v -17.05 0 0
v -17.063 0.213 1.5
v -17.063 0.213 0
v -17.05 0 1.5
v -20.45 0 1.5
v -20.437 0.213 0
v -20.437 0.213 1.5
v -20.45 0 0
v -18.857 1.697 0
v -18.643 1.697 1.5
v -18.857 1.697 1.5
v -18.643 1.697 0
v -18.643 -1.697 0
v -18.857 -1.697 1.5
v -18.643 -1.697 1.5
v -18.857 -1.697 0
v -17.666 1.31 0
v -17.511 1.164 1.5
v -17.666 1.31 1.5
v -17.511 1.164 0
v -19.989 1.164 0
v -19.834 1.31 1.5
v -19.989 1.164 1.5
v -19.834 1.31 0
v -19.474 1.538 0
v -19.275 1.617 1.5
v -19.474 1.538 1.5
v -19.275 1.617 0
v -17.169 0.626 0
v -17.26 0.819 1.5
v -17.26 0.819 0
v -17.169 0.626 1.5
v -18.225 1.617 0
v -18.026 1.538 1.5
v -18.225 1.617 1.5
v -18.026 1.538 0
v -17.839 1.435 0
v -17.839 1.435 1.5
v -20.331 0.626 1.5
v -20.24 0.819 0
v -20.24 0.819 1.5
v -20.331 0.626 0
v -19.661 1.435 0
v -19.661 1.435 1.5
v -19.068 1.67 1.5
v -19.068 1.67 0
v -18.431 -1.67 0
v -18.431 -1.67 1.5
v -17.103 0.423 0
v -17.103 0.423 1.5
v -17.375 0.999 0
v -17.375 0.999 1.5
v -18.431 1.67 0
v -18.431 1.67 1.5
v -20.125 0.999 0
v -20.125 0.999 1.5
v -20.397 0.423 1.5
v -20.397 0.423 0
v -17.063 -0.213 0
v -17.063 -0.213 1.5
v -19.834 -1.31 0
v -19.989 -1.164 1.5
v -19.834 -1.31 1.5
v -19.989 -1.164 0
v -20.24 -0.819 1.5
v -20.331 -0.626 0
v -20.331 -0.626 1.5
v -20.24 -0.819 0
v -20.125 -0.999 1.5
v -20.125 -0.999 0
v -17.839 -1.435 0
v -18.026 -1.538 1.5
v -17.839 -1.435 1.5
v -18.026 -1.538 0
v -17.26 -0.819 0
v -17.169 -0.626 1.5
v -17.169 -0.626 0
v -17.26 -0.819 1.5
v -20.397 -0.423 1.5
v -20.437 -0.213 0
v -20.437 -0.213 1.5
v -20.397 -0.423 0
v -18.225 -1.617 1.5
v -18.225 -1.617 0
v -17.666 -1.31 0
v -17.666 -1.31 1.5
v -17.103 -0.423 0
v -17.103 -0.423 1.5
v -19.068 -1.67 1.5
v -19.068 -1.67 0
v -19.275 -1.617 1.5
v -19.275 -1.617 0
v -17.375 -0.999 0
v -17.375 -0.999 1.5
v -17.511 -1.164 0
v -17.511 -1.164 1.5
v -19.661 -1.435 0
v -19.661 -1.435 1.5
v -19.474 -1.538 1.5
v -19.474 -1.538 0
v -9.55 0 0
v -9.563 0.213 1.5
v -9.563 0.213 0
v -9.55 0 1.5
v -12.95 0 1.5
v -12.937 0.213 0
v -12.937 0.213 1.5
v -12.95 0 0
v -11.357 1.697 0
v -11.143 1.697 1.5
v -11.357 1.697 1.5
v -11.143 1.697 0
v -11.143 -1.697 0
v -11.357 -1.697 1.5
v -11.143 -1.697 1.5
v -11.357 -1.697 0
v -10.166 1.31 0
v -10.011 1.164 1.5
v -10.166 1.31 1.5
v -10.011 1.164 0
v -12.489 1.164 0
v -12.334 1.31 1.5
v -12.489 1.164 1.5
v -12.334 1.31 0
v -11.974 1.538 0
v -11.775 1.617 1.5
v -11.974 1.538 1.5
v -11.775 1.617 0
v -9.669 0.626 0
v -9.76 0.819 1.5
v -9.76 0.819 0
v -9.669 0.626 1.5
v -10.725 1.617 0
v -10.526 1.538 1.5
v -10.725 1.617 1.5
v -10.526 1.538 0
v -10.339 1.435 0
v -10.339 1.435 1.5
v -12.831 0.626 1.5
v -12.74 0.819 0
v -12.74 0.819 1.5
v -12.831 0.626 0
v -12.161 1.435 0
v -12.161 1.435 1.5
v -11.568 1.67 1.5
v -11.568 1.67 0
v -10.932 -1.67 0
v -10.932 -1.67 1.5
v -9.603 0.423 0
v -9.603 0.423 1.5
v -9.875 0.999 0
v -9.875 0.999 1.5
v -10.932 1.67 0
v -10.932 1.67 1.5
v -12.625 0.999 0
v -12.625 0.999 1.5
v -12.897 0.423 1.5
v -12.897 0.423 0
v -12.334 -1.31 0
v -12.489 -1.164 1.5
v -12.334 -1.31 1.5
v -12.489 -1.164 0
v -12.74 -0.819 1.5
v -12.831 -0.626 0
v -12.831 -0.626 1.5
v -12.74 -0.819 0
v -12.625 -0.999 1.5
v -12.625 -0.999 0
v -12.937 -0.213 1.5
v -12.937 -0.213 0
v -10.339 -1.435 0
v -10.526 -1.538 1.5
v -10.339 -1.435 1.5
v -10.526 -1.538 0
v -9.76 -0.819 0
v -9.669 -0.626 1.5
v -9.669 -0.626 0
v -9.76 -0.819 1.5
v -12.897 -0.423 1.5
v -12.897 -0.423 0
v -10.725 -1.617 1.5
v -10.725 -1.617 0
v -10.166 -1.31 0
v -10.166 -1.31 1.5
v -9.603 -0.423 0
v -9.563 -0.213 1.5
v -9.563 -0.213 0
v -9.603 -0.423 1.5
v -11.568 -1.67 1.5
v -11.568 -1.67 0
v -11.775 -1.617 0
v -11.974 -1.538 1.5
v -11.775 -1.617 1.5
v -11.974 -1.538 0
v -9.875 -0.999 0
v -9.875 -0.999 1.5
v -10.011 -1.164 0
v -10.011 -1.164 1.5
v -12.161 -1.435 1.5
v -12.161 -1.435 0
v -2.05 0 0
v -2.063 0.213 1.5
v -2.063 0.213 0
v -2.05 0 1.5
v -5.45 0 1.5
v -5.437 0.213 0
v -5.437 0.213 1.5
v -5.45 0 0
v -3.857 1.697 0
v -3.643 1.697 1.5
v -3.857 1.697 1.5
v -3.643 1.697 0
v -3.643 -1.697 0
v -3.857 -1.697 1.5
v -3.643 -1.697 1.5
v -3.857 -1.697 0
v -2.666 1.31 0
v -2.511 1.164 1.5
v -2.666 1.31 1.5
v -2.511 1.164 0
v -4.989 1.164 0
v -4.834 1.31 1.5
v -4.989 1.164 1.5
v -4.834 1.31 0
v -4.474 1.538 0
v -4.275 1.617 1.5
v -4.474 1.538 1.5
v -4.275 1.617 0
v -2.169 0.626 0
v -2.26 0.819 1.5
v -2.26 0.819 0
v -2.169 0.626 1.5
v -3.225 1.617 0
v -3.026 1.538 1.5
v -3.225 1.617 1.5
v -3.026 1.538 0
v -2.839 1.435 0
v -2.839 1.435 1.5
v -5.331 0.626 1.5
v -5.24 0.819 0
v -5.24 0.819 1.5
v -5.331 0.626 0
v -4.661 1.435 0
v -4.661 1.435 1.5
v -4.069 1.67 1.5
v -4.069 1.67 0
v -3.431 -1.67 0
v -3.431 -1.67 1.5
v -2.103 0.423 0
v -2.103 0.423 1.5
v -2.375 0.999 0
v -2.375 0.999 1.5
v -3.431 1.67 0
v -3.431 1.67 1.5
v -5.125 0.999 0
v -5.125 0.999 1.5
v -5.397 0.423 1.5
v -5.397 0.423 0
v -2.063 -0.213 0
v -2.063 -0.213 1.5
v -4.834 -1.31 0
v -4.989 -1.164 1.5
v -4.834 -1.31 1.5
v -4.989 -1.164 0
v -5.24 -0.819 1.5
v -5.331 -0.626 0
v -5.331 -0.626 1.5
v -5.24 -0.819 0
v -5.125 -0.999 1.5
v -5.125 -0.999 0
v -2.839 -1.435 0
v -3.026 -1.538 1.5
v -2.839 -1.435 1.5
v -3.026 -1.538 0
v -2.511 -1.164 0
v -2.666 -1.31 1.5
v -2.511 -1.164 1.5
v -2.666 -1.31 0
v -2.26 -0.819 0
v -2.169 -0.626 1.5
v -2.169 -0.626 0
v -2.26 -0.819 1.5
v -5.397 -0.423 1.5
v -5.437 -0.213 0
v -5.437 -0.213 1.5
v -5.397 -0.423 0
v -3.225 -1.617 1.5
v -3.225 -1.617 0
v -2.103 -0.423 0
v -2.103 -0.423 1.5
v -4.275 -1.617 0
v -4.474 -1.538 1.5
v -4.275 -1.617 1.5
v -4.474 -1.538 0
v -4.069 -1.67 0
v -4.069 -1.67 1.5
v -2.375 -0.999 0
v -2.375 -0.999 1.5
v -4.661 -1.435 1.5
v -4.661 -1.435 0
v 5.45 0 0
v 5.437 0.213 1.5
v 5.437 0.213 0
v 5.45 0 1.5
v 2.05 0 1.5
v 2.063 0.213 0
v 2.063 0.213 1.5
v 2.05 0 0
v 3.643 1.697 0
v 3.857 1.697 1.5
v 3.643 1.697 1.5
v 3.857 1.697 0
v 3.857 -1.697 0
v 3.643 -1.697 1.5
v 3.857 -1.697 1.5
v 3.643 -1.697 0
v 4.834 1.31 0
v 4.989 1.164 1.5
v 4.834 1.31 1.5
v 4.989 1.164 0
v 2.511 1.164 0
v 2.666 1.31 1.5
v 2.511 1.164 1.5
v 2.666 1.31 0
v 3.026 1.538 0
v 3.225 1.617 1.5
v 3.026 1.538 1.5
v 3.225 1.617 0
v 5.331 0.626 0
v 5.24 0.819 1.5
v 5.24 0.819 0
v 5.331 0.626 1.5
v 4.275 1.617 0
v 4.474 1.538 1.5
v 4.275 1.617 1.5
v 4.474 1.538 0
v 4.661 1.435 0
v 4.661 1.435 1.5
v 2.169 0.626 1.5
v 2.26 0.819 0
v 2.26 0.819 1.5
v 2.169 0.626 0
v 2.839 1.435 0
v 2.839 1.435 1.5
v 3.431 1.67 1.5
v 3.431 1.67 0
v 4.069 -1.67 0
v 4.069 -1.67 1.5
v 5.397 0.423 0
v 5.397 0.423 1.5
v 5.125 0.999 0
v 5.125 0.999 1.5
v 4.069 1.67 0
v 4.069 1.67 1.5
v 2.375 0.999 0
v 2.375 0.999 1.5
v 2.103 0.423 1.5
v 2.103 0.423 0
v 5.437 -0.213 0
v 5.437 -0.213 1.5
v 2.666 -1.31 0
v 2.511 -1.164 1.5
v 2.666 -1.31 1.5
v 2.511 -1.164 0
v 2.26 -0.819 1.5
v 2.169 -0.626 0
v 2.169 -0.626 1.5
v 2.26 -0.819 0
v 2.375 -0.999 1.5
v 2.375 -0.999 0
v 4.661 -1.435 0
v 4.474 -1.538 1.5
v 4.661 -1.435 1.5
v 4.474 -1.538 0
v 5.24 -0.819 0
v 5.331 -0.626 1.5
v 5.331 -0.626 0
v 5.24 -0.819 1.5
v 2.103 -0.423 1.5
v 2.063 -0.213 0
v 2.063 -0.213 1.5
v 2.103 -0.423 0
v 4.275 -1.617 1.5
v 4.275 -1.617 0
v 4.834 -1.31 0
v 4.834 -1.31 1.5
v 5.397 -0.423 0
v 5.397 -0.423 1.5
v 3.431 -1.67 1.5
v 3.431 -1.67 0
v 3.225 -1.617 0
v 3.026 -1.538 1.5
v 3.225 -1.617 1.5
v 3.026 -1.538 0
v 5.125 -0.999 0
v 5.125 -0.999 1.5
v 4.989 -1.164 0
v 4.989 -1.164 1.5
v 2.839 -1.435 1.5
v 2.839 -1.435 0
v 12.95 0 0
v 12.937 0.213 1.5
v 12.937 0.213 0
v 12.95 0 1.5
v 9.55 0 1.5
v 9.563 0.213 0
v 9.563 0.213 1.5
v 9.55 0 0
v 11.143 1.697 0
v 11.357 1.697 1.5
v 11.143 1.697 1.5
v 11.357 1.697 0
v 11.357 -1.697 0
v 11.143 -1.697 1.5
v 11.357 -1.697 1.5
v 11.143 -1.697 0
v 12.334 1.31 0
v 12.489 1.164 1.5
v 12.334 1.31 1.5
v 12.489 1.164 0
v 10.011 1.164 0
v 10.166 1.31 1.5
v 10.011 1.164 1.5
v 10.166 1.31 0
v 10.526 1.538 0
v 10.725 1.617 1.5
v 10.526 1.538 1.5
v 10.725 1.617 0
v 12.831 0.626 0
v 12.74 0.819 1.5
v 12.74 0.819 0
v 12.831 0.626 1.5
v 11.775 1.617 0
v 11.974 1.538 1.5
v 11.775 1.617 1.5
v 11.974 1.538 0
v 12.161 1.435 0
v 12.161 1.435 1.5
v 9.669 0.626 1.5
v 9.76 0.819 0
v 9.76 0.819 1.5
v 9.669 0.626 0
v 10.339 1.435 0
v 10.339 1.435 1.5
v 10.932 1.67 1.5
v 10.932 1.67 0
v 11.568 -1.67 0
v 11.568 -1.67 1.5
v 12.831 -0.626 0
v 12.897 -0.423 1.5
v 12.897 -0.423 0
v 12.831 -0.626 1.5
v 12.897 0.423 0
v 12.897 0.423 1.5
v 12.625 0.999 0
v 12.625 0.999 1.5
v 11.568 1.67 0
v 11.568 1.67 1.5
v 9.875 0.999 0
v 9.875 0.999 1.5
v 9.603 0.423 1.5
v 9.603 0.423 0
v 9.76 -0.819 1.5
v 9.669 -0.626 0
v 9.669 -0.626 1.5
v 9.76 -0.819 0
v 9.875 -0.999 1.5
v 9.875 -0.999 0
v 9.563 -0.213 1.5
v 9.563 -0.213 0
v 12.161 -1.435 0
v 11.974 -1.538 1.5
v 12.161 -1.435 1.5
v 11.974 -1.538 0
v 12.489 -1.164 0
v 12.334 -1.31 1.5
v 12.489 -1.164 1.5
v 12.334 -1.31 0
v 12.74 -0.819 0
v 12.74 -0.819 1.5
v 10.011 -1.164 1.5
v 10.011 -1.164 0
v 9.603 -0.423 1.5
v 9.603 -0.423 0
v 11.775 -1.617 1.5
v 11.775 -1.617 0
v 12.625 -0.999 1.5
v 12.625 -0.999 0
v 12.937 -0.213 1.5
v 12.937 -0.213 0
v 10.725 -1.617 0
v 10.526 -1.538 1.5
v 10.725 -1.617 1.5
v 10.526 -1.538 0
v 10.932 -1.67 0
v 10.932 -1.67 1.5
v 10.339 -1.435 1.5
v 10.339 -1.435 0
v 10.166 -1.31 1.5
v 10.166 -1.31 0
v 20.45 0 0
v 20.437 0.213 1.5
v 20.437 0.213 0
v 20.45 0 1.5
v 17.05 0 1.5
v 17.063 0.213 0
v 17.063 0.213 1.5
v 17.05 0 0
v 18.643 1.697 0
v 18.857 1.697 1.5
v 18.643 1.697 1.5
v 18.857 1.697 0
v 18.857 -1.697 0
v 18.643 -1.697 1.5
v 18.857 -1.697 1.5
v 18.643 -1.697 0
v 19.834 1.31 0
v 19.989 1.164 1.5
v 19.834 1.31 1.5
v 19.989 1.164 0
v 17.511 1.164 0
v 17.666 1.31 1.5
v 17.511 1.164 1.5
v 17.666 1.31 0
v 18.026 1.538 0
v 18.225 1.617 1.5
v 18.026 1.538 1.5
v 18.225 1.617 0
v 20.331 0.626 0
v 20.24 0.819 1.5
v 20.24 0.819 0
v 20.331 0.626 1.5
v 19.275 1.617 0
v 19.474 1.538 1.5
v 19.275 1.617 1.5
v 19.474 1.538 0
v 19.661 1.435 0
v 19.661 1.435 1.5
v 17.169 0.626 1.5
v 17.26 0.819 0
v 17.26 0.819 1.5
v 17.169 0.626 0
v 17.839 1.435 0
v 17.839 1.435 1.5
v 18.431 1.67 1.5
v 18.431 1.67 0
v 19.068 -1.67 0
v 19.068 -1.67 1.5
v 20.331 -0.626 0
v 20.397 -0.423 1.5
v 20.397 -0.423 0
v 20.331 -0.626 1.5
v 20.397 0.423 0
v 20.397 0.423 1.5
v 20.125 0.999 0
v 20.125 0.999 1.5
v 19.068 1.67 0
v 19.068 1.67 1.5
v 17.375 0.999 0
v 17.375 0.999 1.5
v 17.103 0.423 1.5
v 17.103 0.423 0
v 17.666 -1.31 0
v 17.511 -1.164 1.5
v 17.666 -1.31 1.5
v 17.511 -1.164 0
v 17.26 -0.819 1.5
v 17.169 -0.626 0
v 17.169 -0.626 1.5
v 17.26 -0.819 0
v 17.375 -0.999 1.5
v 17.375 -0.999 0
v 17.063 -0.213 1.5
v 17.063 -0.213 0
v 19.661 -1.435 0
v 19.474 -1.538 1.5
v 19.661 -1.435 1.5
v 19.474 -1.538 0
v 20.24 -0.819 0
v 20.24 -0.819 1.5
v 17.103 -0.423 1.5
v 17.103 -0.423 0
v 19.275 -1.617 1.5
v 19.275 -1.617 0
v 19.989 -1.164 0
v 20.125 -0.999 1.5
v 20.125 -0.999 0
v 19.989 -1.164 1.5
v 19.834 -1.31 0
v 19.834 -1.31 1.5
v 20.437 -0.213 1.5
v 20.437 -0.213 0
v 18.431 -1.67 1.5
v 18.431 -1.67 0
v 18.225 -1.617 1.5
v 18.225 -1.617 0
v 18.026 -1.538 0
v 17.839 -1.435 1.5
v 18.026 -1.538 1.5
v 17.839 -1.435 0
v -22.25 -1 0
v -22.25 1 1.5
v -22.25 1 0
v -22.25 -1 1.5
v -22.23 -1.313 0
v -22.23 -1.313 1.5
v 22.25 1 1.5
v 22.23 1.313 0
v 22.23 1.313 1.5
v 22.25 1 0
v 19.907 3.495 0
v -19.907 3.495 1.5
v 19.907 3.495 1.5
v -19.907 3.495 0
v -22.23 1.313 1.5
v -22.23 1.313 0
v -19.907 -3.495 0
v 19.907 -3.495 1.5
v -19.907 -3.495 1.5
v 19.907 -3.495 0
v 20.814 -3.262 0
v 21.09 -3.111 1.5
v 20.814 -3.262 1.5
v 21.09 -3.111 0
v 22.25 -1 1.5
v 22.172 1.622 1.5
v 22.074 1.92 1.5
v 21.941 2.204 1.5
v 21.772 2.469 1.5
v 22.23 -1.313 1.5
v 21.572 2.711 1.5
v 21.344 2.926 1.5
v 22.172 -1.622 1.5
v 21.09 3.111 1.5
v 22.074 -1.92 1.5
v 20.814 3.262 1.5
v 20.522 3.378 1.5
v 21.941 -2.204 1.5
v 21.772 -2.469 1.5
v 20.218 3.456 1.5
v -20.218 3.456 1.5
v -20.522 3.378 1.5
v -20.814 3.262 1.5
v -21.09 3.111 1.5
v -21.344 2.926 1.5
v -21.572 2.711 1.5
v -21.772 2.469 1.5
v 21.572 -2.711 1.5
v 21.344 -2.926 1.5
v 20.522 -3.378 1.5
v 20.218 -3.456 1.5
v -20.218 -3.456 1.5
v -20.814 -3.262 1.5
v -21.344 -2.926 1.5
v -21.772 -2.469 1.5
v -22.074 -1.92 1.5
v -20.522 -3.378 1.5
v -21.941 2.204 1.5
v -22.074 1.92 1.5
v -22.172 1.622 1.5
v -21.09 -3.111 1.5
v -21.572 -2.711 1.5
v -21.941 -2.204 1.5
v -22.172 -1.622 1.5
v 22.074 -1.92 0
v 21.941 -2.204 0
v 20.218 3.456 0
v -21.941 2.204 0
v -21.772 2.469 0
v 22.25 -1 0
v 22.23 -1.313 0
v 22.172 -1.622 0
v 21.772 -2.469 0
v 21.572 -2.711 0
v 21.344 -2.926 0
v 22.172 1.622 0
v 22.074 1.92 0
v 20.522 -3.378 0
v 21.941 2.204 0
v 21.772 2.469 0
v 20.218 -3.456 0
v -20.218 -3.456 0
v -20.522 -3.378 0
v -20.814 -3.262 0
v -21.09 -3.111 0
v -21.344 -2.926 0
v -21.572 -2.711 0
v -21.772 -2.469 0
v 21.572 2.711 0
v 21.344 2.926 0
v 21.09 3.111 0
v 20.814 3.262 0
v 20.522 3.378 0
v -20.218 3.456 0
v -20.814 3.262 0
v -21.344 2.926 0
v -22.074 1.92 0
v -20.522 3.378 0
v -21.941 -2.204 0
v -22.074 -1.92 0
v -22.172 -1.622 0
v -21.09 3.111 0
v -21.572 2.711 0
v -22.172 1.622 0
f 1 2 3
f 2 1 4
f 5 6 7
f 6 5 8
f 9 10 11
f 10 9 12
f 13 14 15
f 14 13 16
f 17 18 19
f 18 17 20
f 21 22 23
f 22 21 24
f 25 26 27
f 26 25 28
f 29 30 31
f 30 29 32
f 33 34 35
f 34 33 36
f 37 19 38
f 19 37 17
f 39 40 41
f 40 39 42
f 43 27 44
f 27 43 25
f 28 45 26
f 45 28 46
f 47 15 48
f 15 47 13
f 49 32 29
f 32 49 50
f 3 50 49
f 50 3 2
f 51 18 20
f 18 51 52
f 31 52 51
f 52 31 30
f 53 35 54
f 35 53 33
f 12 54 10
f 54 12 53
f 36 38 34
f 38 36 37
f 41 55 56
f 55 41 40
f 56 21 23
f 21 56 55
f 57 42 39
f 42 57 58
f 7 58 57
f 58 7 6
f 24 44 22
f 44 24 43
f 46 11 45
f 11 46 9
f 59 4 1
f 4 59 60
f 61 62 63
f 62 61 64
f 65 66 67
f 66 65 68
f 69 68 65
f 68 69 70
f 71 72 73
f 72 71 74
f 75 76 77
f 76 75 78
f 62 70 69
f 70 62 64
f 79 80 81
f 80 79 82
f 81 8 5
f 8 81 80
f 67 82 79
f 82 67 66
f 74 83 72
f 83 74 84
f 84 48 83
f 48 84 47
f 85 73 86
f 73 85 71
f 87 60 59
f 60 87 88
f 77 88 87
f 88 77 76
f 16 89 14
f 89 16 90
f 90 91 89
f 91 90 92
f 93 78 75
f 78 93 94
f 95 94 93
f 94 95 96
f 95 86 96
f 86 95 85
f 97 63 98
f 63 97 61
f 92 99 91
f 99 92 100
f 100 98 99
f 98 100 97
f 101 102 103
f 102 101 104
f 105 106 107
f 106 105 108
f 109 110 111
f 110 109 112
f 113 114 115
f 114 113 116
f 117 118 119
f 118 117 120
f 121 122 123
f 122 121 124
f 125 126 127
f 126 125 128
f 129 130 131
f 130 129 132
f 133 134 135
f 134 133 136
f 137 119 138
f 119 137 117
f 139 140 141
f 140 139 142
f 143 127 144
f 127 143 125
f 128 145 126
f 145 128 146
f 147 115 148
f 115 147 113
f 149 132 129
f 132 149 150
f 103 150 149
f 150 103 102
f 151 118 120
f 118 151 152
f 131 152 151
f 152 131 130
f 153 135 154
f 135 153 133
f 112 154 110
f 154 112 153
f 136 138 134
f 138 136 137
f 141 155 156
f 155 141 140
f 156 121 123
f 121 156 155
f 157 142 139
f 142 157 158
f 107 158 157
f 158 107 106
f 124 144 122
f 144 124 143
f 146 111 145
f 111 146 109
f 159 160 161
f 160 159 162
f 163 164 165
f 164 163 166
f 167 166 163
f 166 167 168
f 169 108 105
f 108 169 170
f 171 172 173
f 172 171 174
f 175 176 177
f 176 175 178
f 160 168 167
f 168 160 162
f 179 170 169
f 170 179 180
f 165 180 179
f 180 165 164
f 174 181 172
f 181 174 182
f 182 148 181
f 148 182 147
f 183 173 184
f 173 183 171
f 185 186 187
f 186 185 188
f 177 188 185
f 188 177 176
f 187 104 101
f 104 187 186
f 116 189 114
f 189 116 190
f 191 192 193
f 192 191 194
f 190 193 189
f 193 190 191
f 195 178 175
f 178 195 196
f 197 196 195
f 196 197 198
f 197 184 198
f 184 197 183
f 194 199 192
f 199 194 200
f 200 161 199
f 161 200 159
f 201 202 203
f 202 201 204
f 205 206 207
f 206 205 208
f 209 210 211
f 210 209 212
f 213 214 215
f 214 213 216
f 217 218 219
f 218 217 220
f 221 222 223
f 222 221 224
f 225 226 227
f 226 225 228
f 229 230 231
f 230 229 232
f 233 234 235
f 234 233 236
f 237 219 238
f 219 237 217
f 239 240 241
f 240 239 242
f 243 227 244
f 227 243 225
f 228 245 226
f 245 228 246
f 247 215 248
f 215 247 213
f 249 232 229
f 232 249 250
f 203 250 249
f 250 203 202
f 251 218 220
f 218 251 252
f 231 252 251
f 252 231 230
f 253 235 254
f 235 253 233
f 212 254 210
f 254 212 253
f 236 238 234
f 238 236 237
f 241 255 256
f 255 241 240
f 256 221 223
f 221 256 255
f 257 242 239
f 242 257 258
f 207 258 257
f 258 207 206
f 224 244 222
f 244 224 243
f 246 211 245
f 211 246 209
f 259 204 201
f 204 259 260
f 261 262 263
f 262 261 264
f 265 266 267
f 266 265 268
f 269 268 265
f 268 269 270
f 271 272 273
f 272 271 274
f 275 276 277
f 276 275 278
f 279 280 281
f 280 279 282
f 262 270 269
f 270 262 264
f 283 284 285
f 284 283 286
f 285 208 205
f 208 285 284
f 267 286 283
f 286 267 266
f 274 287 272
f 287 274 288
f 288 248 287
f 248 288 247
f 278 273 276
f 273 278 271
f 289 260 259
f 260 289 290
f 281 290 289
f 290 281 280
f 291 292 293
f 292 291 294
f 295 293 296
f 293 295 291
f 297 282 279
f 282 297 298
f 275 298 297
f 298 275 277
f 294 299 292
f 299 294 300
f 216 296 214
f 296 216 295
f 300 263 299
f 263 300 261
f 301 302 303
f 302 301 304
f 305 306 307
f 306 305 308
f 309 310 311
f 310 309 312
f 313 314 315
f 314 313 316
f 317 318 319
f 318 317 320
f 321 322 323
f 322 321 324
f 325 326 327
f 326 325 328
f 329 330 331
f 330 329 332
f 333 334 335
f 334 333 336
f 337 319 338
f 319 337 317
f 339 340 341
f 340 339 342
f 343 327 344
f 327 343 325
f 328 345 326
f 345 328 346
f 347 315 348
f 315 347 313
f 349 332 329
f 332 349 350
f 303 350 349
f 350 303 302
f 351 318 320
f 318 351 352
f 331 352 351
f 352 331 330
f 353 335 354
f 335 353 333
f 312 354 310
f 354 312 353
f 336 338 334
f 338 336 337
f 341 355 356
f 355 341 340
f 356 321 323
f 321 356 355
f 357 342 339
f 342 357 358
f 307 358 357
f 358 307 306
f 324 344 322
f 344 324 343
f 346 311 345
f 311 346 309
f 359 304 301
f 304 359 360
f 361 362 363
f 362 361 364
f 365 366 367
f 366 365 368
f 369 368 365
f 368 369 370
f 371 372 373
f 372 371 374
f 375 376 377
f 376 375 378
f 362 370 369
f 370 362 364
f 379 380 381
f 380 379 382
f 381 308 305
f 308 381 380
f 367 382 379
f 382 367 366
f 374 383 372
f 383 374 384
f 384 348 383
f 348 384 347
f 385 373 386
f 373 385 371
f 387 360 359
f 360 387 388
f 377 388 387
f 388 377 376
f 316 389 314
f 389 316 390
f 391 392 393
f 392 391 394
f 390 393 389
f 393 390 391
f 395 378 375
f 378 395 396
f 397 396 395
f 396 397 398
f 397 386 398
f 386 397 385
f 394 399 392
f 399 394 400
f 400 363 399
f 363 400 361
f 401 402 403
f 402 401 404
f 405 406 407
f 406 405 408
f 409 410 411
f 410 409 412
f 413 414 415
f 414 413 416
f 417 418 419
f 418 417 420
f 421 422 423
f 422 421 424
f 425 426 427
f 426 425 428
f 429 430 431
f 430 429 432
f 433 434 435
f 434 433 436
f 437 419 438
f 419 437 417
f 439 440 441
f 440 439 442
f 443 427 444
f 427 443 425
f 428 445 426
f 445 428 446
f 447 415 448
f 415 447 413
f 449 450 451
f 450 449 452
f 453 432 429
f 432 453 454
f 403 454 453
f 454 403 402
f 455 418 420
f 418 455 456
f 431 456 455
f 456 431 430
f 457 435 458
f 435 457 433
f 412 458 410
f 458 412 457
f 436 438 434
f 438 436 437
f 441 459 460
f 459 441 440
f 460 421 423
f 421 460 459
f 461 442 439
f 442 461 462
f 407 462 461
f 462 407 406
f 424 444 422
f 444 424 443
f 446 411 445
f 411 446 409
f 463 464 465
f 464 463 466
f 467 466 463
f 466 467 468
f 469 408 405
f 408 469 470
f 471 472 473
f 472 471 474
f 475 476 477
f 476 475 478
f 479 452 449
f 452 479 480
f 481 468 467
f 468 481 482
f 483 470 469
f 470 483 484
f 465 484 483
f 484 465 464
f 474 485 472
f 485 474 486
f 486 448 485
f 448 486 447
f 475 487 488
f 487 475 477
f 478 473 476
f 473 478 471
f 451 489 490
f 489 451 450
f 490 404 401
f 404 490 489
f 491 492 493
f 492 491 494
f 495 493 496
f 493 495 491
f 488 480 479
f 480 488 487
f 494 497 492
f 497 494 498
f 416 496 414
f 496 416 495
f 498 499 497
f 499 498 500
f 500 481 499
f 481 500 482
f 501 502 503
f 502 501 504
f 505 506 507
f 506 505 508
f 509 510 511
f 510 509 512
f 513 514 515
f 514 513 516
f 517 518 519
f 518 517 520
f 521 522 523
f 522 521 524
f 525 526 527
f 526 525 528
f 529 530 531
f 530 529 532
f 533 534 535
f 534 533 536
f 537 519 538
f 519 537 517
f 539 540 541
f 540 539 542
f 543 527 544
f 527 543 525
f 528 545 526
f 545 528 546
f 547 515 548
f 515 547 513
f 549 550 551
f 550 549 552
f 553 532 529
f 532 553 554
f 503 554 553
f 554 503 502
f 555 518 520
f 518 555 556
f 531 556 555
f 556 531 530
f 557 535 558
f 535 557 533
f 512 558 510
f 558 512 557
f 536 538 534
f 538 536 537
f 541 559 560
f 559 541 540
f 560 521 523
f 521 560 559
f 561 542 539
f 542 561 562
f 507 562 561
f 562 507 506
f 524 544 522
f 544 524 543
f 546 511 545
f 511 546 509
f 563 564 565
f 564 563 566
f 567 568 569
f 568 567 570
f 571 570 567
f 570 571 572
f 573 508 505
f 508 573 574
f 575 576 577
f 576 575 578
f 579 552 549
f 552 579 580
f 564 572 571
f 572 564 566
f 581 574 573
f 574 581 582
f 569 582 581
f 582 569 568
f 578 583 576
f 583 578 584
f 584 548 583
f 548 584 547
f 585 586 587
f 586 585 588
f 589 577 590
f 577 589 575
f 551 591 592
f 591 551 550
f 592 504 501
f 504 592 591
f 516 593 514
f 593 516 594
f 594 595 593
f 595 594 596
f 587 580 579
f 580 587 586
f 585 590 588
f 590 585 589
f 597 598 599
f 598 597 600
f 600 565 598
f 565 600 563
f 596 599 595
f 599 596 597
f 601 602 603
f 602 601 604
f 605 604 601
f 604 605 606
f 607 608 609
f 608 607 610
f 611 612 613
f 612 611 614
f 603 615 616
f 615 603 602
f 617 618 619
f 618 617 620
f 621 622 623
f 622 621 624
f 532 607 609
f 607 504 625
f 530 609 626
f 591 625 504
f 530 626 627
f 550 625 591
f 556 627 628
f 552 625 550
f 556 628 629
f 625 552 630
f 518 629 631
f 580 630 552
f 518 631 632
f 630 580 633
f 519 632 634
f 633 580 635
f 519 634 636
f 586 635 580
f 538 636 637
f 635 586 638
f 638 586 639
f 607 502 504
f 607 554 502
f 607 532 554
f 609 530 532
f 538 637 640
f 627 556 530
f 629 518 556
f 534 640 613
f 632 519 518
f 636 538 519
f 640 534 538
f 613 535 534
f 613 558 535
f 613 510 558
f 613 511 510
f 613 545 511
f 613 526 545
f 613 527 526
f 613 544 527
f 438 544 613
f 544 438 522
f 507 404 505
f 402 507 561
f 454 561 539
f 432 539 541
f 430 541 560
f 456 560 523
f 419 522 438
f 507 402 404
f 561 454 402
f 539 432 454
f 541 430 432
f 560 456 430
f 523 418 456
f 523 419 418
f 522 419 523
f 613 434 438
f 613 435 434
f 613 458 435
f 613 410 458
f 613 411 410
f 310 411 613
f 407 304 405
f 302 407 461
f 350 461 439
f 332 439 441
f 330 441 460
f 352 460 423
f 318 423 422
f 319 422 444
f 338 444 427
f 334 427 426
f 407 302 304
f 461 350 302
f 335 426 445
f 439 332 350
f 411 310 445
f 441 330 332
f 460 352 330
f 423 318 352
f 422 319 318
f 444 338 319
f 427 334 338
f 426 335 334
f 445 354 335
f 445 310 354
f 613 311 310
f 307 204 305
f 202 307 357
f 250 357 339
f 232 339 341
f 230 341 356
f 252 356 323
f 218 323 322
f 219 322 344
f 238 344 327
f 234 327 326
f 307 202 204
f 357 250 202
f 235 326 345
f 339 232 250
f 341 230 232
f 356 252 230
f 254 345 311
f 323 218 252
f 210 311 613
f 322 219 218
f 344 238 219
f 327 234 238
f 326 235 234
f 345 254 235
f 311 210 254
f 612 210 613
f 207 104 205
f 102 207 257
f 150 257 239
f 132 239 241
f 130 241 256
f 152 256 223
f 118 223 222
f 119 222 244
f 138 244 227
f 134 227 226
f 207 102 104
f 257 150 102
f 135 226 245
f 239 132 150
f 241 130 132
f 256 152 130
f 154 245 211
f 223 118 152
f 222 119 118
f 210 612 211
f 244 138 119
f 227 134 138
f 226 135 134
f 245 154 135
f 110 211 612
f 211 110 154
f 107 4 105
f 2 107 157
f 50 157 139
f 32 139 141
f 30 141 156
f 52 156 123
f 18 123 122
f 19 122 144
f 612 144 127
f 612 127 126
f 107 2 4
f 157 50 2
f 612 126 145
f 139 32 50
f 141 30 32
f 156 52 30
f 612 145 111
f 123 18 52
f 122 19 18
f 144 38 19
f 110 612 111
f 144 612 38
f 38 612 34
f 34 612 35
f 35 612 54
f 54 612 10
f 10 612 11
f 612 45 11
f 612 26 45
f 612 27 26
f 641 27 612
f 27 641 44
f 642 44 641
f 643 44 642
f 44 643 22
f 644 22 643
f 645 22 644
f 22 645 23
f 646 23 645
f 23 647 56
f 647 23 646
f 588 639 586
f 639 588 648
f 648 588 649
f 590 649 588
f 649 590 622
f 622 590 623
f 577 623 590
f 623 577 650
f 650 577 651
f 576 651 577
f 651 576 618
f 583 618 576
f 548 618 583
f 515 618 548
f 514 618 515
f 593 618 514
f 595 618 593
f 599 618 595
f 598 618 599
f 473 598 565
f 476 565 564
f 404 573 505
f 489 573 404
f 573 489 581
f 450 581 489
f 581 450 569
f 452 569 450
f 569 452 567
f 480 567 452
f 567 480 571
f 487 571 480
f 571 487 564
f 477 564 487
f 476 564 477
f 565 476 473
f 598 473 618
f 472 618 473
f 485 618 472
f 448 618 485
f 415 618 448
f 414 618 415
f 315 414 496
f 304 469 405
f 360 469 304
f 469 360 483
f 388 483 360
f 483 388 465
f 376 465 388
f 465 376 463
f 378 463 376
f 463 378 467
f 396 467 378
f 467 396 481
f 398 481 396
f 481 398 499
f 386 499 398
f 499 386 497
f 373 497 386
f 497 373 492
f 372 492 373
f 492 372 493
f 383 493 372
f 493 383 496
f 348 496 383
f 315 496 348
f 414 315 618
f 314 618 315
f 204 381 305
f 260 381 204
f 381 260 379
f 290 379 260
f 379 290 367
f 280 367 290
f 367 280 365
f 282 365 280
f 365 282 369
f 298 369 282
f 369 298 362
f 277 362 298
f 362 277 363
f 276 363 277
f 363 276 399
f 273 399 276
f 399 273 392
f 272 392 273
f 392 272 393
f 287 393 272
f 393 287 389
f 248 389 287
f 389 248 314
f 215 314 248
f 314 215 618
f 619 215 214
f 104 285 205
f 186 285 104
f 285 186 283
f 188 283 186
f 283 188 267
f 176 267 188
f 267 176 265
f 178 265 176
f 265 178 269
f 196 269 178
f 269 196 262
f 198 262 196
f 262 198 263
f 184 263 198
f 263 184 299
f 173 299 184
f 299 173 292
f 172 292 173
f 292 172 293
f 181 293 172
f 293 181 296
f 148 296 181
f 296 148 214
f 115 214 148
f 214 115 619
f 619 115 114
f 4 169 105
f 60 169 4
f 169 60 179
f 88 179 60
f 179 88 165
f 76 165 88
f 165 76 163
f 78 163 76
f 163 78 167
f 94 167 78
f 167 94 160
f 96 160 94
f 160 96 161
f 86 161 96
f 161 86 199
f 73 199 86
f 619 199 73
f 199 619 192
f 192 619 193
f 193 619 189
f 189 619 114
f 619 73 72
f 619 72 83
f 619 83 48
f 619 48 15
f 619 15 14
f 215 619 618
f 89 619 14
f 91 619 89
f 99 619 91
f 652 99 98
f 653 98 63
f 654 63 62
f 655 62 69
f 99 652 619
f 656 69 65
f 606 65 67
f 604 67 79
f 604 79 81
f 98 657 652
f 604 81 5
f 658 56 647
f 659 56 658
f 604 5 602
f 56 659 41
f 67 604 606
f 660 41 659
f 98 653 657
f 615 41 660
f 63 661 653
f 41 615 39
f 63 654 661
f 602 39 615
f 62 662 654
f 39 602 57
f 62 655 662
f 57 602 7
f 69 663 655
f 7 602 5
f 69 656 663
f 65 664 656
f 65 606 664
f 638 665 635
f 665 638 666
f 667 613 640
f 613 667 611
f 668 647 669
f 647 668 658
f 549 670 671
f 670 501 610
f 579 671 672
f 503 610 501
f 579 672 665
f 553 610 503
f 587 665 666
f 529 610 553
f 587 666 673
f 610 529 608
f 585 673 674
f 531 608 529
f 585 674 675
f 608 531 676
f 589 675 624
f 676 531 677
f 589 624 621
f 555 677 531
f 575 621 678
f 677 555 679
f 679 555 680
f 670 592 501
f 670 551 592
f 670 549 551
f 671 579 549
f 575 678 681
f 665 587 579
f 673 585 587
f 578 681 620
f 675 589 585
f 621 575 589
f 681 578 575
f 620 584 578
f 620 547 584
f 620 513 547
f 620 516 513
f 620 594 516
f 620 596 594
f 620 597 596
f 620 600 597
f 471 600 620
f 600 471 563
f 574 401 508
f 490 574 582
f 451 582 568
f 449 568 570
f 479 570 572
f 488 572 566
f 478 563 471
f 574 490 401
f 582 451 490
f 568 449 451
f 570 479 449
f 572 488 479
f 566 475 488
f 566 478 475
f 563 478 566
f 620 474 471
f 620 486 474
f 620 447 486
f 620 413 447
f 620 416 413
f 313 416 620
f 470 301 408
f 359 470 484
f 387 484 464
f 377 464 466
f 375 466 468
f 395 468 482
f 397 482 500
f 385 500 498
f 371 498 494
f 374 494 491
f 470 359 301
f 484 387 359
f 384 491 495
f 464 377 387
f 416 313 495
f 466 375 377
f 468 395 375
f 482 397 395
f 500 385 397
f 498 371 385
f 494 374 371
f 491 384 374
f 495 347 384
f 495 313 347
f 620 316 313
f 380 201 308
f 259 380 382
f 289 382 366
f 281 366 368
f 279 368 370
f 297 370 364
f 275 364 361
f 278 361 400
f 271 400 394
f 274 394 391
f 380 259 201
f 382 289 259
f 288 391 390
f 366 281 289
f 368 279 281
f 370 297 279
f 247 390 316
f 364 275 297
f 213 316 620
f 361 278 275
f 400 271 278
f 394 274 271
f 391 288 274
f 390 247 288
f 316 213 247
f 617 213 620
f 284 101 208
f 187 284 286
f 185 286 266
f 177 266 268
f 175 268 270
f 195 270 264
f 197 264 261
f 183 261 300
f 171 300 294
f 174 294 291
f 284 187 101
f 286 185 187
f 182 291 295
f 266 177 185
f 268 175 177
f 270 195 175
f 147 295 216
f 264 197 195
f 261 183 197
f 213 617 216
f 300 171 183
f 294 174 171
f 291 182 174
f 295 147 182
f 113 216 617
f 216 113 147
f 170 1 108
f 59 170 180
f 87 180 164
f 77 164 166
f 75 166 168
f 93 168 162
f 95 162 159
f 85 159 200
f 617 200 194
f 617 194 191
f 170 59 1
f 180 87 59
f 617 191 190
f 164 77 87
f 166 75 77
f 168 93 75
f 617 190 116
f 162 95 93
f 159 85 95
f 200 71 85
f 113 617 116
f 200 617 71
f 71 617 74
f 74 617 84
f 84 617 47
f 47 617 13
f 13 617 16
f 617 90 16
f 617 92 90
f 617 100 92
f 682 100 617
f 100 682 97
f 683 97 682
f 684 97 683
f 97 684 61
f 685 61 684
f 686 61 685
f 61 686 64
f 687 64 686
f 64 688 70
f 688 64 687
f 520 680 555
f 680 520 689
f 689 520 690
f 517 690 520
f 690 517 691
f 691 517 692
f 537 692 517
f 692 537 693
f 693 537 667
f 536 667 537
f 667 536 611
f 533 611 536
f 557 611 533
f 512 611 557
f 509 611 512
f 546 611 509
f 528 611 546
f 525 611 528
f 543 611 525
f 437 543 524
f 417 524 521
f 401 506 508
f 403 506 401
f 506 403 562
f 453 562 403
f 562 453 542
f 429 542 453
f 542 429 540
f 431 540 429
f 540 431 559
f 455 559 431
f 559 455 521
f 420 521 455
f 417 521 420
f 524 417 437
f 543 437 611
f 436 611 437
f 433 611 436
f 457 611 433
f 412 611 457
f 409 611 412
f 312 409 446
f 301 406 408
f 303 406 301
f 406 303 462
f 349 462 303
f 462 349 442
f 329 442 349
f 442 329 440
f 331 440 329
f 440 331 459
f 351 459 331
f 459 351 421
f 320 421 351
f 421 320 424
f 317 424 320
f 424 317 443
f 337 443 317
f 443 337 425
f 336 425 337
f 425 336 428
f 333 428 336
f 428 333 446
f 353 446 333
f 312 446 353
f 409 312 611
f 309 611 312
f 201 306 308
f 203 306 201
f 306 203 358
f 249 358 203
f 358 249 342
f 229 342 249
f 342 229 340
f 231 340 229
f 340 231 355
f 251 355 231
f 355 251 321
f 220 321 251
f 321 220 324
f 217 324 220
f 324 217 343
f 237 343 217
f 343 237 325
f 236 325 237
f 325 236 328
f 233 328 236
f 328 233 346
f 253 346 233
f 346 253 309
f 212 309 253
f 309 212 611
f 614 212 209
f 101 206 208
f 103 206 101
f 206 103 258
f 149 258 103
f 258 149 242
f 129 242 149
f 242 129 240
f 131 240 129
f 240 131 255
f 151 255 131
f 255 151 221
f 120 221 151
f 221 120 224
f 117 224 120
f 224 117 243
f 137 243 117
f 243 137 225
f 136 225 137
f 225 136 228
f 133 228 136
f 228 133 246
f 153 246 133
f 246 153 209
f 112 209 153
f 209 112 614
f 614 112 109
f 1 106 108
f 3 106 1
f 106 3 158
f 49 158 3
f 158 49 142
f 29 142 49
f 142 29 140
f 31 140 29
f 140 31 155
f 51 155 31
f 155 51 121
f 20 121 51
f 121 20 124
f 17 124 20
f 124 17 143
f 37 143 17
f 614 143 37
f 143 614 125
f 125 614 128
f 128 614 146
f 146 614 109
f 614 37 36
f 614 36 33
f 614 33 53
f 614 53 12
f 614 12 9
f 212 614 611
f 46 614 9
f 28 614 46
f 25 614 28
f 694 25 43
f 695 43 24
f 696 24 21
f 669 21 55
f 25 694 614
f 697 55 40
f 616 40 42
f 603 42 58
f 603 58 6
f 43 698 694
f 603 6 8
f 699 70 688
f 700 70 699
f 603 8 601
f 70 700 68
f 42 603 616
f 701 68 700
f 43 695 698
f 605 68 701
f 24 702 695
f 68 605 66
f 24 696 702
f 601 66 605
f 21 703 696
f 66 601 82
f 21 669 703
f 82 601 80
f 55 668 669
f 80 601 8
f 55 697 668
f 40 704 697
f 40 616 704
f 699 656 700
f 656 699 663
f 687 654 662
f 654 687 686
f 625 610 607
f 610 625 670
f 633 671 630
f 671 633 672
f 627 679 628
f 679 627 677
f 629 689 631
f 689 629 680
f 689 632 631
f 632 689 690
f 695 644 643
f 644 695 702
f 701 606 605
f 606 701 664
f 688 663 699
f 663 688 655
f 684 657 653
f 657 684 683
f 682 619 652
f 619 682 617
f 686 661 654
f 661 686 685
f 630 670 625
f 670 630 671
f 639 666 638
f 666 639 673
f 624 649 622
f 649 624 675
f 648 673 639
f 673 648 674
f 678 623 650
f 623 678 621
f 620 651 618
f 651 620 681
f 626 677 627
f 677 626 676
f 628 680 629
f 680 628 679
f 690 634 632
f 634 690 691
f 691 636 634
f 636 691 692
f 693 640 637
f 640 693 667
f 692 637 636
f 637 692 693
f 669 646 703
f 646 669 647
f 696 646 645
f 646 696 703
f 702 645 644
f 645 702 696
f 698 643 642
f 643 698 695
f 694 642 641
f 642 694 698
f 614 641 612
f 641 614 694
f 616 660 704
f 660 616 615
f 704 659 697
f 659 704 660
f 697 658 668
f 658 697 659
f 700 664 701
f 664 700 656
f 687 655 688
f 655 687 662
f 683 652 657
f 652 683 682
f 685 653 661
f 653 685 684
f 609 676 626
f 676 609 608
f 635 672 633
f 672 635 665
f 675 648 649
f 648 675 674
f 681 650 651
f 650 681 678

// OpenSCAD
$fn = 50;


difference() {
	union() {
		translate(v = [0, 0, 0]) {
			rotate(a = [0, 0, 0]) {
				hull() {
					translate(v = [-19.7500000000, 1.0000000000, 0]) {
						rotate(a = [0, 0, 0]) {
							translate(v = [0, 0, 0]) {
								rotate(a = [0, 0, 0]) {
									cylinder(h = 1.5000000000, r = 2.5000000000);
								}
							}
						}
					}
					translate(v = [19.7500000000, 1.0000000000, 0]) {
						rotate(a = [0, 0, 0]) {
							translate(v = [0, 0, 0]) {
								rotate(a = [0, 0, 0]) {
									cylinder(h = 1.5000000000, r = 2.5000000000);
								}
							}
						}
					}
					translate(v = [-19.7500000000, -1.0000000000, 0]) {
						rotate(a = [0, 0, 0]) {
							translate(v = [0, 0, 0]) {
								rotate(a = [0, 0, 0]) {
									cylinder(h = 1.5000000000, r = 2.5000000000);
								}
							}
						}
					}
					translate(v = [19.7500000000, -1.0000000000, 0]) {
						rotate(a = [0, 0, 0]) {
							translate(v = [0, 0, 0]) {
								rotate(a = [0, 0, 0]) {
									cylinder(h = 1.5000000000, r = 2.5000000000);
								}
							}
						}
					}
				}
			}
		}
	}
	union() {
		translate(v = [-18.7500000000, 0.0000000000, 0]) {
			rotate(a = [0, 0, 0]) {
				translate(v = [0, 0, -50]) {
					rotate(a = [0, 0, 0]) {
						cylinder(h = 100, r = 1.7000000000);
					}
				}
			}
		}
		translate(v = [-11.2500000000, 0.0000000000, 0]) {
			rotate(a = [0, 0, 0]) {
				translate(v = [0, 0, -50]) {
					rotate(a = [0, 0, 0]) {
						cylinder(h = 100, r = 1.7000000000);
					}
				}
			}
		}
		translate(v = [-3.7500000000, 0.0000000000, 0]) {
			rotate(a = [0, 0, 0]) {
				translate(v = [0, 0, -50]) {
					rotate(a = [0, 0, 0]) {
						cylinder(h = 100, r = 1.7000000000);
					}
				}
			}
		}
		translate(v = [3.7500000000, 0.0000000000, 0]) {
			rotate(a = [0, 0, 0]) {
				translate(v = [0, 0, -50]) {
					rotate(a = [0, 0, 0]) {
						cylinder(h = 100, r = 1.7000000000);
					}
				}
			}
		}
		translate(v = [11.2500000000, 0.0000000000, 0]) {
			rotate(a = [0, 0, 0]) {
				translate(v = [0, 0, -50]) {
					rotate(a = [0, 0, 0]) {
						cylinder(h = 100, r = 1.7000000000);
					}
				}
			}
		}
		translate(v = [18.7500000000, 0.0000000000, 0]) {
			rotate(a = [0, 0, 0]) {
				translate(v = [0, 0, -50]) {
					rotate(a = [0, 0, 0]) {
						cylinder(h = 100, r = 1.7000000000);
					}
				}
			}
		}
	}
}
